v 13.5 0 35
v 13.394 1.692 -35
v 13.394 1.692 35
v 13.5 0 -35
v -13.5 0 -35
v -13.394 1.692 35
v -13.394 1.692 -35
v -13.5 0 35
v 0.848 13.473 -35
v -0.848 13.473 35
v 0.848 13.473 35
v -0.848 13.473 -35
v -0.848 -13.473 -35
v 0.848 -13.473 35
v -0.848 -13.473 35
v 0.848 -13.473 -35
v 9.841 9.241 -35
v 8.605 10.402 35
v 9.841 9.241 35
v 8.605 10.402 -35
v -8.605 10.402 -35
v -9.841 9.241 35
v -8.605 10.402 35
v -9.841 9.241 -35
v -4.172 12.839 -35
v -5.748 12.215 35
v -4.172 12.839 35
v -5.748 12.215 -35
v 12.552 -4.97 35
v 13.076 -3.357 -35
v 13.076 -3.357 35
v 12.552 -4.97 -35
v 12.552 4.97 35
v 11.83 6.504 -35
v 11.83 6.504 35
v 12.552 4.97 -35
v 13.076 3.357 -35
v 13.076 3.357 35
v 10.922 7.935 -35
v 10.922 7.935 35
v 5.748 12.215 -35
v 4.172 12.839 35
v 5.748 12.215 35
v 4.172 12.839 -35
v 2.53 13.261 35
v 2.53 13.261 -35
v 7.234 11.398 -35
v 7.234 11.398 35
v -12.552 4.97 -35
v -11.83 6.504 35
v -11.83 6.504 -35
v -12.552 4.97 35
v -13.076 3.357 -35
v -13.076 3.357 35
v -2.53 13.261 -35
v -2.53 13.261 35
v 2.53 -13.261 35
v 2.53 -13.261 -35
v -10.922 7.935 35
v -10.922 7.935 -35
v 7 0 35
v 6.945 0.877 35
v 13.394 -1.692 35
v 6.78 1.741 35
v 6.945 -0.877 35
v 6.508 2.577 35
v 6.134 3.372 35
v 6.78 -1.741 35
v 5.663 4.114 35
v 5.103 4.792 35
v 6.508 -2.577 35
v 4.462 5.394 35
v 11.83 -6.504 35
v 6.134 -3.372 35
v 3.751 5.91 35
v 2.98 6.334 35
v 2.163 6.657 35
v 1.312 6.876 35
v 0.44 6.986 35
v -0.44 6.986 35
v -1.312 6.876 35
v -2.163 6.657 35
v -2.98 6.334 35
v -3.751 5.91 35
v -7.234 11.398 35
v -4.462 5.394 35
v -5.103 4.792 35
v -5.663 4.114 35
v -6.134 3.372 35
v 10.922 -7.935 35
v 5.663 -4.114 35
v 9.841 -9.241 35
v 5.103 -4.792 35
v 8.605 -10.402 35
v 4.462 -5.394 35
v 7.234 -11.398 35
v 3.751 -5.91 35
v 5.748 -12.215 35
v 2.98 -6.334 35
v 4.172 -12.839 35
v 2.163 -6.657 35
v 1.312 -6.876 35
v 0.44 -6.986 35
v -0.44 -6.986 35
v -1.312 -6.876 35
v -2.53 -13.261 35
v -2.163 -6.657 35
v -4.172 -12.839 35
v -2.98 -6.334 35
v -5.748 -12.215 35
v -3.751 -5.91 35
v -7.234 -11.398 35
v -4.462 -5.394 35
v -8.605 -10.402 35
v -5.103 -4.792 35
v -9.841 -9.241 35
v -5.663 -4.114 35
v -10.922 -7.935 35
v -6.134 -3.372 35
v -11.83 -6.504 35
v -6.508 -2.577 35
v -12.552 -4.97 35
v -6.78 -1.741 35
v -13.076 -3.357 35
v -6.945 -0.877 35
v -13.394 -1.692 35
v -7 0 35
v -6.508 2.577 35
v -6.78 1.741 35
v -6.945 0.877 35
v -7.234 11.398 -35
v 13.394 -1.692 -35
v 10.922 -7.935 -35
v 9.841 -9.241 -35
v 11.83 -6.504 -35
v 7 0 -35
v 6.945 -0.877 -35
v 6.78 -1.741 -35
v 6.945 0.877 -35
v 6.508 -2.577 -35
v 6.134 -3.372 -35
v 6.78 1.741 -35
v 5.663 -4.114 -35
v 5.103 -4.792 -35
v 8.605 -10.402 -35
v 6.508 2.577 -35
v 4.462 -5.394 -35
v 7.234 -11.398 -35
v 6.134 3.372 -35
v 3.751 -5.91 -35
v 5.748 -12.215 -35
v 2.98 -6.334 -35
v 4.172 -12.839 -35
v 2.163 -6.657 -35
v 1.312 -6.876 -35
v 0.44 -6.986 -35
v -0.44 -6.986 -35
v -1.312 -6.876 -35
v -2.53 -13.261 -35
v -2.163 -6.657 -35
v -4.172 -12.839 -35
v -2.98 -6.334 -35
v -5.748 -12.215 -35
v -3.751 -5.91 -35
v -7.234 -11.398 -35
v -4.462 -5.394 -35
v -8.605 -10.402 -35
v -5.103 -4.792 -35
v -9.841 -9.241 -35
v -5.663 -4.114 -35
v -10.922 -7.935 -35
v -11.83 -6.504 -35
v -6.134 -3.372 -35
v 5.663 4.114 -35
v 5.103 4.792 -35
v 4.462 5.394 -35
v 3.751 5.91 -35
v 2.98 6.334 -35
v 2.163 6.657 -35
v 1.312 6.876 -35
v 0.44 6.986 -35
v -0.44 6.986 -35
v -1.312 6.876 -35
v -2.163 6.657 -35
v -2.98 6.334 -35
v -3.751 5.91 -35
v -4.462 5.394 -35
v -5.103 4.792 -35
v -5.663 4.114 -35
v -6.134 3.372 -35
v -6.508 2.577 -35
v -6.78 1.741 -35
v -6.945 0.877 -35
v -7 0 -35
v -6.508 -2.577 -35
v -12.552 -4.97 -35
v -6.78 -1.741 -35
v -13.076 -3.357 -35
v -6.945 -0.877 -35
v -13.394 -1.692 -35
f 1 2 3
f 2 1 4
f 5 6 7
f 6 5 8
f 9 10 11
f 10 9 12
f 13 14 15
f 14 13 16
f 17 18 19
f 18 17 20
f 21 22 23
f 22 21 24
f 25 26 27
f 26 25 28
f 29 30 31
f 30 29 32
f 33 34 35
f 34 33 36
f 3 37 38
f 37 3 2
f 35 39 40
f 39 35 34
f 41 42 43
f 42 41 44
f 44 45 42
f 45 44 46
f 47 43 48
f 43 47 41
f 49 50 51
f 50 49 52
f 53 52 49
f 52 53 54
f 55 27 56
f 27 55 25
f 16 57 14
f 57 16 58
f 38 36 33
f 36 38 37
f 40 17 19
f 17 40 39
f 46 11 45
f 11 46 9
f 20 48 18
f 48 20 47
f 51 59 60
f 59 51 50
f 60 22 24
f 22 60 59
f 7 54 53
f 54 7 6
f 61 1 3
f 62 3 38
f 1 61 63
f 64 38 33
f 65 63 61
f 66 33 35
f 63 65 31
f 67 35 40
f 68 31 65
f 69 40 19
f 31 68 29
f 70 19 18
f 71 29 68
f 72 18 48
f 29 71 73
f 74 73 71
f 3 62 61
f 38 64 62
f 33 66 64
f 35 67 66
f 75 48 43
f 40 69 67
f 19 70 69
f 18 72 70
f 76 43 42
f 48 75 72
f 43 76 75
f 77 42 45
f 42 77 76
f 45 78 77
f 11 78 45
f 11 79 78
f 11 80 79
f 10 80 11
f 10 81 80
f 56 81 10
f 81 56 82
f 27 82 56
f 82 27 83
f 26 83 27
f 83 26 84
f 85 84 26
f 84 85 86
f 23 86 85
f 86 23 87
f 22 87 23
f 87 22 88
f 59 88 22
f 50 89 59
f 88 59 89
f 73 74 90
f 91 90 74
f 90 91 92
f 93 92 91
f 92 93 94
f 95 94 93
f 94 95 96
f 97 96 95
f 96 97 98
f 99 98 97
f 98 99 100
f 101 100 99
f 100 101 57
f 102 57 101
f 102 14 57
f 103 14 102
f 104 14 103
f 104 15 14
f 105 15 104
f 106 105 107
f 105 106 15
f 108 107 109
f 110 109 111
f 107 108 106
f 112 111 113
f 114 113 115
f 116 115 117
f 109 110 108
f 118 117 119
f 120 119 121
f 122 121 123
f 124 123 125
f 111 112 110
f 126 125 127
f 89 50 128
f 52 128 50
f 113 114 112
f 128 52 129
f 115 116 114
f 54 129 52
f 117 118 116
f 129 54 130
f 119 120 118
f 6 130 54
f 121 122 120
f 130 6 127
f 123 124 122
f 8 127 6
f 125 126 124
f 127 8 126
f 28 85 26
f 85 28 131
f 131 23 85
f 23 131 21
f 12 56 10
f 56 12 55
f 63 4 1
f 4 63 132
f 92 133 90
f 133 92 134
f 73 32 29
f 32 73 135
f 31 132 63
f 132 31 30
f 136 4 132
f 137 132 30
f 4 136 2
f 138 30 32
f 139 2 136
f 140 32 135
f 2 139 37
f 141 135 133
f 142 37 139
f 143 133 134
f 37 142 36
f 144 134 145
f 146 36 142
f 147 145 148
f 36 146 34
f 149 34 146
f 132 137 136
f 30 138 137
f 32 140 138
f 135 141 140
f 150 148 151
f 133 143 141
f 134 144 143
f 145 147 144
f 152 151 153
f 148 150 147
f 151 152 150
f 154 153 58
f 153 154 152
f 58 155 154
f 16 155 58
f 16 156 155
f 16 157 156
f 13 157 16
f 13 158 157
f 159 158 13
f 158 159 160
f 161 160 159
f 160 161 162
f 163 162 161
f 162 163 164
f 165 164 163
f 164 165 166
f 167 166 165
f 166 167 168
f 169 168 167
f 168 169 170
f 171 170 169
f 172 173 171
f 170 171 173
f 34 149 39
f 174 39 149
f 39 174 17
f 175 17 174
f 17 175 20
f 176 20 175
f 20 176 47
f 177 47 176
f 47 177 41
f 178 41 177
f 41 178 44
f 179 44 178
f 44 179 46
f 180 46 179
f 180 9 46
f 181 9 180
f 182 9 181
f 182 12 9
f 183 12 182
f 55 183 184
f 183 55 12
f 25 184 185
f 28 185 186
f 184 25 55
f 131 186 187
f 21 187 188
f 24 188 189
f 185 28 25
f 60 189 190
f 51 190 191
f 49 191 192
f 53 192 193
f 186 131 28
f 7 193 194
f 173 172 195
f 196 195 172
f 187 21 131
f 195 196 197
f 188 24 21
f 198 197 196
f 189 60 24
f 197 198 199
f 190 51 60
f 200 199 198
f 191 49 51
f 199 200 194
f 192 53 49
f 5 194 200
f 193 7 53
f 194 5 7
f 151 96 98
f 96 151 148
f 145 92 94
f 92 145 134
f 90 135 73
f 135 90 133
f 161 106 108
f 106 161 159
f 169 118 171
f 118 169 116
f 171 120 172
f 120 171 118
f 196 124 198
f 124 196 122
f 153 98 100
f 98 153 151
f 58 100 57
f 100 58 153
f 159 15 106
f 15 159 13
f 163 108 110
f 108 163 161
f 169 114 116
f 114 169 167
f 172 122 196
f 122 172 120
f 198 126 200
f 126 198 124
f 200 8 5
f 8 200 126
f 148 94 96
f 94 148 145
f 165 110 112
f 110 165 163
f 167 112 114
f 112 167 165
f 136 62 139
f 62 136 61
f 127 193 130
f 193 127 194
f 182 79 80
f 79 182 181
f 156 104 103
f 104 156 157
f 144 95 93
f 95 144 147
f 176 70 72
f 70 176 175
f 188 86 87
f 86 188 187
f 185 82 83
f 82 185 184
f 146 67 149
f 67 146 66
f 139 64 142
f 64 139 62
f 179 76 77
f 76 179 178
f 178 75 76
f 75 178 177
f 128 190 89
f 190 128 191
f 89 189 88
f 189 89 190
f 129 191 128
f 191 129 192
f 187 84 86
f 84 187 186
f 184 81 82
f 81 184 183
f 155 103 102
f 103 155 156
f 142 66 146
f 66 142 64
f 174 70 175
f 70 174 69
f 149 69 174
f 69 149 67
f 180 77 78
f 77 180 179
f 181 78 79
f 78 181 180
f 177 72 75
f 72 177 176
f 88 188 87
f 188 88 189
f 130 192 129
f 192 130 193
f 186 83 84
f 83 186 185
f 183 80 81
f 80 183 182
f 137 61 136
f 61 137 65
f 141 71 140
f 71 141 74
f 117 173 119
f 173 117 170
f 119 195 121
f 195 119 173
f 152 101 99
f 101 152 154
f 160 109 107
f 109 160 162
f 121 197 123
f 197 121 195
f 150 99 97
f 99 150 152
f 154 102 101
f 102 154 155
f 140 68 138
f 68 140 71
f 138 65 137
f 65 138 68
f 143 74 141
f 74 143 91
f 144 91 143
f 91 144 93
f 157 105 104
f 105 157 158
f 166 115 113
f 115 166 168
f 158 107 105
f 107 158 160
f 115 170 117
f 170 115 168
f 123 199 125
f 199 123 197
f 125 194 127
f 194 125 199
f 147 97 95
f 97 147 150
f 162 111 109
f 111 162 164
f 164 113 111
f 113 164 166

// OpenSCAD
$fn = 50;


difference() {
	union() {
		translate(v = [0, 0, -35.0000000000]) {
			cylinder(h = 70, r = 13.5000000000);
		}
	}
	union() {
		translate(v = [0, 0, -100.0000000000]) {
			cylinder(h = 200, r = 7);
		}
	}
}
